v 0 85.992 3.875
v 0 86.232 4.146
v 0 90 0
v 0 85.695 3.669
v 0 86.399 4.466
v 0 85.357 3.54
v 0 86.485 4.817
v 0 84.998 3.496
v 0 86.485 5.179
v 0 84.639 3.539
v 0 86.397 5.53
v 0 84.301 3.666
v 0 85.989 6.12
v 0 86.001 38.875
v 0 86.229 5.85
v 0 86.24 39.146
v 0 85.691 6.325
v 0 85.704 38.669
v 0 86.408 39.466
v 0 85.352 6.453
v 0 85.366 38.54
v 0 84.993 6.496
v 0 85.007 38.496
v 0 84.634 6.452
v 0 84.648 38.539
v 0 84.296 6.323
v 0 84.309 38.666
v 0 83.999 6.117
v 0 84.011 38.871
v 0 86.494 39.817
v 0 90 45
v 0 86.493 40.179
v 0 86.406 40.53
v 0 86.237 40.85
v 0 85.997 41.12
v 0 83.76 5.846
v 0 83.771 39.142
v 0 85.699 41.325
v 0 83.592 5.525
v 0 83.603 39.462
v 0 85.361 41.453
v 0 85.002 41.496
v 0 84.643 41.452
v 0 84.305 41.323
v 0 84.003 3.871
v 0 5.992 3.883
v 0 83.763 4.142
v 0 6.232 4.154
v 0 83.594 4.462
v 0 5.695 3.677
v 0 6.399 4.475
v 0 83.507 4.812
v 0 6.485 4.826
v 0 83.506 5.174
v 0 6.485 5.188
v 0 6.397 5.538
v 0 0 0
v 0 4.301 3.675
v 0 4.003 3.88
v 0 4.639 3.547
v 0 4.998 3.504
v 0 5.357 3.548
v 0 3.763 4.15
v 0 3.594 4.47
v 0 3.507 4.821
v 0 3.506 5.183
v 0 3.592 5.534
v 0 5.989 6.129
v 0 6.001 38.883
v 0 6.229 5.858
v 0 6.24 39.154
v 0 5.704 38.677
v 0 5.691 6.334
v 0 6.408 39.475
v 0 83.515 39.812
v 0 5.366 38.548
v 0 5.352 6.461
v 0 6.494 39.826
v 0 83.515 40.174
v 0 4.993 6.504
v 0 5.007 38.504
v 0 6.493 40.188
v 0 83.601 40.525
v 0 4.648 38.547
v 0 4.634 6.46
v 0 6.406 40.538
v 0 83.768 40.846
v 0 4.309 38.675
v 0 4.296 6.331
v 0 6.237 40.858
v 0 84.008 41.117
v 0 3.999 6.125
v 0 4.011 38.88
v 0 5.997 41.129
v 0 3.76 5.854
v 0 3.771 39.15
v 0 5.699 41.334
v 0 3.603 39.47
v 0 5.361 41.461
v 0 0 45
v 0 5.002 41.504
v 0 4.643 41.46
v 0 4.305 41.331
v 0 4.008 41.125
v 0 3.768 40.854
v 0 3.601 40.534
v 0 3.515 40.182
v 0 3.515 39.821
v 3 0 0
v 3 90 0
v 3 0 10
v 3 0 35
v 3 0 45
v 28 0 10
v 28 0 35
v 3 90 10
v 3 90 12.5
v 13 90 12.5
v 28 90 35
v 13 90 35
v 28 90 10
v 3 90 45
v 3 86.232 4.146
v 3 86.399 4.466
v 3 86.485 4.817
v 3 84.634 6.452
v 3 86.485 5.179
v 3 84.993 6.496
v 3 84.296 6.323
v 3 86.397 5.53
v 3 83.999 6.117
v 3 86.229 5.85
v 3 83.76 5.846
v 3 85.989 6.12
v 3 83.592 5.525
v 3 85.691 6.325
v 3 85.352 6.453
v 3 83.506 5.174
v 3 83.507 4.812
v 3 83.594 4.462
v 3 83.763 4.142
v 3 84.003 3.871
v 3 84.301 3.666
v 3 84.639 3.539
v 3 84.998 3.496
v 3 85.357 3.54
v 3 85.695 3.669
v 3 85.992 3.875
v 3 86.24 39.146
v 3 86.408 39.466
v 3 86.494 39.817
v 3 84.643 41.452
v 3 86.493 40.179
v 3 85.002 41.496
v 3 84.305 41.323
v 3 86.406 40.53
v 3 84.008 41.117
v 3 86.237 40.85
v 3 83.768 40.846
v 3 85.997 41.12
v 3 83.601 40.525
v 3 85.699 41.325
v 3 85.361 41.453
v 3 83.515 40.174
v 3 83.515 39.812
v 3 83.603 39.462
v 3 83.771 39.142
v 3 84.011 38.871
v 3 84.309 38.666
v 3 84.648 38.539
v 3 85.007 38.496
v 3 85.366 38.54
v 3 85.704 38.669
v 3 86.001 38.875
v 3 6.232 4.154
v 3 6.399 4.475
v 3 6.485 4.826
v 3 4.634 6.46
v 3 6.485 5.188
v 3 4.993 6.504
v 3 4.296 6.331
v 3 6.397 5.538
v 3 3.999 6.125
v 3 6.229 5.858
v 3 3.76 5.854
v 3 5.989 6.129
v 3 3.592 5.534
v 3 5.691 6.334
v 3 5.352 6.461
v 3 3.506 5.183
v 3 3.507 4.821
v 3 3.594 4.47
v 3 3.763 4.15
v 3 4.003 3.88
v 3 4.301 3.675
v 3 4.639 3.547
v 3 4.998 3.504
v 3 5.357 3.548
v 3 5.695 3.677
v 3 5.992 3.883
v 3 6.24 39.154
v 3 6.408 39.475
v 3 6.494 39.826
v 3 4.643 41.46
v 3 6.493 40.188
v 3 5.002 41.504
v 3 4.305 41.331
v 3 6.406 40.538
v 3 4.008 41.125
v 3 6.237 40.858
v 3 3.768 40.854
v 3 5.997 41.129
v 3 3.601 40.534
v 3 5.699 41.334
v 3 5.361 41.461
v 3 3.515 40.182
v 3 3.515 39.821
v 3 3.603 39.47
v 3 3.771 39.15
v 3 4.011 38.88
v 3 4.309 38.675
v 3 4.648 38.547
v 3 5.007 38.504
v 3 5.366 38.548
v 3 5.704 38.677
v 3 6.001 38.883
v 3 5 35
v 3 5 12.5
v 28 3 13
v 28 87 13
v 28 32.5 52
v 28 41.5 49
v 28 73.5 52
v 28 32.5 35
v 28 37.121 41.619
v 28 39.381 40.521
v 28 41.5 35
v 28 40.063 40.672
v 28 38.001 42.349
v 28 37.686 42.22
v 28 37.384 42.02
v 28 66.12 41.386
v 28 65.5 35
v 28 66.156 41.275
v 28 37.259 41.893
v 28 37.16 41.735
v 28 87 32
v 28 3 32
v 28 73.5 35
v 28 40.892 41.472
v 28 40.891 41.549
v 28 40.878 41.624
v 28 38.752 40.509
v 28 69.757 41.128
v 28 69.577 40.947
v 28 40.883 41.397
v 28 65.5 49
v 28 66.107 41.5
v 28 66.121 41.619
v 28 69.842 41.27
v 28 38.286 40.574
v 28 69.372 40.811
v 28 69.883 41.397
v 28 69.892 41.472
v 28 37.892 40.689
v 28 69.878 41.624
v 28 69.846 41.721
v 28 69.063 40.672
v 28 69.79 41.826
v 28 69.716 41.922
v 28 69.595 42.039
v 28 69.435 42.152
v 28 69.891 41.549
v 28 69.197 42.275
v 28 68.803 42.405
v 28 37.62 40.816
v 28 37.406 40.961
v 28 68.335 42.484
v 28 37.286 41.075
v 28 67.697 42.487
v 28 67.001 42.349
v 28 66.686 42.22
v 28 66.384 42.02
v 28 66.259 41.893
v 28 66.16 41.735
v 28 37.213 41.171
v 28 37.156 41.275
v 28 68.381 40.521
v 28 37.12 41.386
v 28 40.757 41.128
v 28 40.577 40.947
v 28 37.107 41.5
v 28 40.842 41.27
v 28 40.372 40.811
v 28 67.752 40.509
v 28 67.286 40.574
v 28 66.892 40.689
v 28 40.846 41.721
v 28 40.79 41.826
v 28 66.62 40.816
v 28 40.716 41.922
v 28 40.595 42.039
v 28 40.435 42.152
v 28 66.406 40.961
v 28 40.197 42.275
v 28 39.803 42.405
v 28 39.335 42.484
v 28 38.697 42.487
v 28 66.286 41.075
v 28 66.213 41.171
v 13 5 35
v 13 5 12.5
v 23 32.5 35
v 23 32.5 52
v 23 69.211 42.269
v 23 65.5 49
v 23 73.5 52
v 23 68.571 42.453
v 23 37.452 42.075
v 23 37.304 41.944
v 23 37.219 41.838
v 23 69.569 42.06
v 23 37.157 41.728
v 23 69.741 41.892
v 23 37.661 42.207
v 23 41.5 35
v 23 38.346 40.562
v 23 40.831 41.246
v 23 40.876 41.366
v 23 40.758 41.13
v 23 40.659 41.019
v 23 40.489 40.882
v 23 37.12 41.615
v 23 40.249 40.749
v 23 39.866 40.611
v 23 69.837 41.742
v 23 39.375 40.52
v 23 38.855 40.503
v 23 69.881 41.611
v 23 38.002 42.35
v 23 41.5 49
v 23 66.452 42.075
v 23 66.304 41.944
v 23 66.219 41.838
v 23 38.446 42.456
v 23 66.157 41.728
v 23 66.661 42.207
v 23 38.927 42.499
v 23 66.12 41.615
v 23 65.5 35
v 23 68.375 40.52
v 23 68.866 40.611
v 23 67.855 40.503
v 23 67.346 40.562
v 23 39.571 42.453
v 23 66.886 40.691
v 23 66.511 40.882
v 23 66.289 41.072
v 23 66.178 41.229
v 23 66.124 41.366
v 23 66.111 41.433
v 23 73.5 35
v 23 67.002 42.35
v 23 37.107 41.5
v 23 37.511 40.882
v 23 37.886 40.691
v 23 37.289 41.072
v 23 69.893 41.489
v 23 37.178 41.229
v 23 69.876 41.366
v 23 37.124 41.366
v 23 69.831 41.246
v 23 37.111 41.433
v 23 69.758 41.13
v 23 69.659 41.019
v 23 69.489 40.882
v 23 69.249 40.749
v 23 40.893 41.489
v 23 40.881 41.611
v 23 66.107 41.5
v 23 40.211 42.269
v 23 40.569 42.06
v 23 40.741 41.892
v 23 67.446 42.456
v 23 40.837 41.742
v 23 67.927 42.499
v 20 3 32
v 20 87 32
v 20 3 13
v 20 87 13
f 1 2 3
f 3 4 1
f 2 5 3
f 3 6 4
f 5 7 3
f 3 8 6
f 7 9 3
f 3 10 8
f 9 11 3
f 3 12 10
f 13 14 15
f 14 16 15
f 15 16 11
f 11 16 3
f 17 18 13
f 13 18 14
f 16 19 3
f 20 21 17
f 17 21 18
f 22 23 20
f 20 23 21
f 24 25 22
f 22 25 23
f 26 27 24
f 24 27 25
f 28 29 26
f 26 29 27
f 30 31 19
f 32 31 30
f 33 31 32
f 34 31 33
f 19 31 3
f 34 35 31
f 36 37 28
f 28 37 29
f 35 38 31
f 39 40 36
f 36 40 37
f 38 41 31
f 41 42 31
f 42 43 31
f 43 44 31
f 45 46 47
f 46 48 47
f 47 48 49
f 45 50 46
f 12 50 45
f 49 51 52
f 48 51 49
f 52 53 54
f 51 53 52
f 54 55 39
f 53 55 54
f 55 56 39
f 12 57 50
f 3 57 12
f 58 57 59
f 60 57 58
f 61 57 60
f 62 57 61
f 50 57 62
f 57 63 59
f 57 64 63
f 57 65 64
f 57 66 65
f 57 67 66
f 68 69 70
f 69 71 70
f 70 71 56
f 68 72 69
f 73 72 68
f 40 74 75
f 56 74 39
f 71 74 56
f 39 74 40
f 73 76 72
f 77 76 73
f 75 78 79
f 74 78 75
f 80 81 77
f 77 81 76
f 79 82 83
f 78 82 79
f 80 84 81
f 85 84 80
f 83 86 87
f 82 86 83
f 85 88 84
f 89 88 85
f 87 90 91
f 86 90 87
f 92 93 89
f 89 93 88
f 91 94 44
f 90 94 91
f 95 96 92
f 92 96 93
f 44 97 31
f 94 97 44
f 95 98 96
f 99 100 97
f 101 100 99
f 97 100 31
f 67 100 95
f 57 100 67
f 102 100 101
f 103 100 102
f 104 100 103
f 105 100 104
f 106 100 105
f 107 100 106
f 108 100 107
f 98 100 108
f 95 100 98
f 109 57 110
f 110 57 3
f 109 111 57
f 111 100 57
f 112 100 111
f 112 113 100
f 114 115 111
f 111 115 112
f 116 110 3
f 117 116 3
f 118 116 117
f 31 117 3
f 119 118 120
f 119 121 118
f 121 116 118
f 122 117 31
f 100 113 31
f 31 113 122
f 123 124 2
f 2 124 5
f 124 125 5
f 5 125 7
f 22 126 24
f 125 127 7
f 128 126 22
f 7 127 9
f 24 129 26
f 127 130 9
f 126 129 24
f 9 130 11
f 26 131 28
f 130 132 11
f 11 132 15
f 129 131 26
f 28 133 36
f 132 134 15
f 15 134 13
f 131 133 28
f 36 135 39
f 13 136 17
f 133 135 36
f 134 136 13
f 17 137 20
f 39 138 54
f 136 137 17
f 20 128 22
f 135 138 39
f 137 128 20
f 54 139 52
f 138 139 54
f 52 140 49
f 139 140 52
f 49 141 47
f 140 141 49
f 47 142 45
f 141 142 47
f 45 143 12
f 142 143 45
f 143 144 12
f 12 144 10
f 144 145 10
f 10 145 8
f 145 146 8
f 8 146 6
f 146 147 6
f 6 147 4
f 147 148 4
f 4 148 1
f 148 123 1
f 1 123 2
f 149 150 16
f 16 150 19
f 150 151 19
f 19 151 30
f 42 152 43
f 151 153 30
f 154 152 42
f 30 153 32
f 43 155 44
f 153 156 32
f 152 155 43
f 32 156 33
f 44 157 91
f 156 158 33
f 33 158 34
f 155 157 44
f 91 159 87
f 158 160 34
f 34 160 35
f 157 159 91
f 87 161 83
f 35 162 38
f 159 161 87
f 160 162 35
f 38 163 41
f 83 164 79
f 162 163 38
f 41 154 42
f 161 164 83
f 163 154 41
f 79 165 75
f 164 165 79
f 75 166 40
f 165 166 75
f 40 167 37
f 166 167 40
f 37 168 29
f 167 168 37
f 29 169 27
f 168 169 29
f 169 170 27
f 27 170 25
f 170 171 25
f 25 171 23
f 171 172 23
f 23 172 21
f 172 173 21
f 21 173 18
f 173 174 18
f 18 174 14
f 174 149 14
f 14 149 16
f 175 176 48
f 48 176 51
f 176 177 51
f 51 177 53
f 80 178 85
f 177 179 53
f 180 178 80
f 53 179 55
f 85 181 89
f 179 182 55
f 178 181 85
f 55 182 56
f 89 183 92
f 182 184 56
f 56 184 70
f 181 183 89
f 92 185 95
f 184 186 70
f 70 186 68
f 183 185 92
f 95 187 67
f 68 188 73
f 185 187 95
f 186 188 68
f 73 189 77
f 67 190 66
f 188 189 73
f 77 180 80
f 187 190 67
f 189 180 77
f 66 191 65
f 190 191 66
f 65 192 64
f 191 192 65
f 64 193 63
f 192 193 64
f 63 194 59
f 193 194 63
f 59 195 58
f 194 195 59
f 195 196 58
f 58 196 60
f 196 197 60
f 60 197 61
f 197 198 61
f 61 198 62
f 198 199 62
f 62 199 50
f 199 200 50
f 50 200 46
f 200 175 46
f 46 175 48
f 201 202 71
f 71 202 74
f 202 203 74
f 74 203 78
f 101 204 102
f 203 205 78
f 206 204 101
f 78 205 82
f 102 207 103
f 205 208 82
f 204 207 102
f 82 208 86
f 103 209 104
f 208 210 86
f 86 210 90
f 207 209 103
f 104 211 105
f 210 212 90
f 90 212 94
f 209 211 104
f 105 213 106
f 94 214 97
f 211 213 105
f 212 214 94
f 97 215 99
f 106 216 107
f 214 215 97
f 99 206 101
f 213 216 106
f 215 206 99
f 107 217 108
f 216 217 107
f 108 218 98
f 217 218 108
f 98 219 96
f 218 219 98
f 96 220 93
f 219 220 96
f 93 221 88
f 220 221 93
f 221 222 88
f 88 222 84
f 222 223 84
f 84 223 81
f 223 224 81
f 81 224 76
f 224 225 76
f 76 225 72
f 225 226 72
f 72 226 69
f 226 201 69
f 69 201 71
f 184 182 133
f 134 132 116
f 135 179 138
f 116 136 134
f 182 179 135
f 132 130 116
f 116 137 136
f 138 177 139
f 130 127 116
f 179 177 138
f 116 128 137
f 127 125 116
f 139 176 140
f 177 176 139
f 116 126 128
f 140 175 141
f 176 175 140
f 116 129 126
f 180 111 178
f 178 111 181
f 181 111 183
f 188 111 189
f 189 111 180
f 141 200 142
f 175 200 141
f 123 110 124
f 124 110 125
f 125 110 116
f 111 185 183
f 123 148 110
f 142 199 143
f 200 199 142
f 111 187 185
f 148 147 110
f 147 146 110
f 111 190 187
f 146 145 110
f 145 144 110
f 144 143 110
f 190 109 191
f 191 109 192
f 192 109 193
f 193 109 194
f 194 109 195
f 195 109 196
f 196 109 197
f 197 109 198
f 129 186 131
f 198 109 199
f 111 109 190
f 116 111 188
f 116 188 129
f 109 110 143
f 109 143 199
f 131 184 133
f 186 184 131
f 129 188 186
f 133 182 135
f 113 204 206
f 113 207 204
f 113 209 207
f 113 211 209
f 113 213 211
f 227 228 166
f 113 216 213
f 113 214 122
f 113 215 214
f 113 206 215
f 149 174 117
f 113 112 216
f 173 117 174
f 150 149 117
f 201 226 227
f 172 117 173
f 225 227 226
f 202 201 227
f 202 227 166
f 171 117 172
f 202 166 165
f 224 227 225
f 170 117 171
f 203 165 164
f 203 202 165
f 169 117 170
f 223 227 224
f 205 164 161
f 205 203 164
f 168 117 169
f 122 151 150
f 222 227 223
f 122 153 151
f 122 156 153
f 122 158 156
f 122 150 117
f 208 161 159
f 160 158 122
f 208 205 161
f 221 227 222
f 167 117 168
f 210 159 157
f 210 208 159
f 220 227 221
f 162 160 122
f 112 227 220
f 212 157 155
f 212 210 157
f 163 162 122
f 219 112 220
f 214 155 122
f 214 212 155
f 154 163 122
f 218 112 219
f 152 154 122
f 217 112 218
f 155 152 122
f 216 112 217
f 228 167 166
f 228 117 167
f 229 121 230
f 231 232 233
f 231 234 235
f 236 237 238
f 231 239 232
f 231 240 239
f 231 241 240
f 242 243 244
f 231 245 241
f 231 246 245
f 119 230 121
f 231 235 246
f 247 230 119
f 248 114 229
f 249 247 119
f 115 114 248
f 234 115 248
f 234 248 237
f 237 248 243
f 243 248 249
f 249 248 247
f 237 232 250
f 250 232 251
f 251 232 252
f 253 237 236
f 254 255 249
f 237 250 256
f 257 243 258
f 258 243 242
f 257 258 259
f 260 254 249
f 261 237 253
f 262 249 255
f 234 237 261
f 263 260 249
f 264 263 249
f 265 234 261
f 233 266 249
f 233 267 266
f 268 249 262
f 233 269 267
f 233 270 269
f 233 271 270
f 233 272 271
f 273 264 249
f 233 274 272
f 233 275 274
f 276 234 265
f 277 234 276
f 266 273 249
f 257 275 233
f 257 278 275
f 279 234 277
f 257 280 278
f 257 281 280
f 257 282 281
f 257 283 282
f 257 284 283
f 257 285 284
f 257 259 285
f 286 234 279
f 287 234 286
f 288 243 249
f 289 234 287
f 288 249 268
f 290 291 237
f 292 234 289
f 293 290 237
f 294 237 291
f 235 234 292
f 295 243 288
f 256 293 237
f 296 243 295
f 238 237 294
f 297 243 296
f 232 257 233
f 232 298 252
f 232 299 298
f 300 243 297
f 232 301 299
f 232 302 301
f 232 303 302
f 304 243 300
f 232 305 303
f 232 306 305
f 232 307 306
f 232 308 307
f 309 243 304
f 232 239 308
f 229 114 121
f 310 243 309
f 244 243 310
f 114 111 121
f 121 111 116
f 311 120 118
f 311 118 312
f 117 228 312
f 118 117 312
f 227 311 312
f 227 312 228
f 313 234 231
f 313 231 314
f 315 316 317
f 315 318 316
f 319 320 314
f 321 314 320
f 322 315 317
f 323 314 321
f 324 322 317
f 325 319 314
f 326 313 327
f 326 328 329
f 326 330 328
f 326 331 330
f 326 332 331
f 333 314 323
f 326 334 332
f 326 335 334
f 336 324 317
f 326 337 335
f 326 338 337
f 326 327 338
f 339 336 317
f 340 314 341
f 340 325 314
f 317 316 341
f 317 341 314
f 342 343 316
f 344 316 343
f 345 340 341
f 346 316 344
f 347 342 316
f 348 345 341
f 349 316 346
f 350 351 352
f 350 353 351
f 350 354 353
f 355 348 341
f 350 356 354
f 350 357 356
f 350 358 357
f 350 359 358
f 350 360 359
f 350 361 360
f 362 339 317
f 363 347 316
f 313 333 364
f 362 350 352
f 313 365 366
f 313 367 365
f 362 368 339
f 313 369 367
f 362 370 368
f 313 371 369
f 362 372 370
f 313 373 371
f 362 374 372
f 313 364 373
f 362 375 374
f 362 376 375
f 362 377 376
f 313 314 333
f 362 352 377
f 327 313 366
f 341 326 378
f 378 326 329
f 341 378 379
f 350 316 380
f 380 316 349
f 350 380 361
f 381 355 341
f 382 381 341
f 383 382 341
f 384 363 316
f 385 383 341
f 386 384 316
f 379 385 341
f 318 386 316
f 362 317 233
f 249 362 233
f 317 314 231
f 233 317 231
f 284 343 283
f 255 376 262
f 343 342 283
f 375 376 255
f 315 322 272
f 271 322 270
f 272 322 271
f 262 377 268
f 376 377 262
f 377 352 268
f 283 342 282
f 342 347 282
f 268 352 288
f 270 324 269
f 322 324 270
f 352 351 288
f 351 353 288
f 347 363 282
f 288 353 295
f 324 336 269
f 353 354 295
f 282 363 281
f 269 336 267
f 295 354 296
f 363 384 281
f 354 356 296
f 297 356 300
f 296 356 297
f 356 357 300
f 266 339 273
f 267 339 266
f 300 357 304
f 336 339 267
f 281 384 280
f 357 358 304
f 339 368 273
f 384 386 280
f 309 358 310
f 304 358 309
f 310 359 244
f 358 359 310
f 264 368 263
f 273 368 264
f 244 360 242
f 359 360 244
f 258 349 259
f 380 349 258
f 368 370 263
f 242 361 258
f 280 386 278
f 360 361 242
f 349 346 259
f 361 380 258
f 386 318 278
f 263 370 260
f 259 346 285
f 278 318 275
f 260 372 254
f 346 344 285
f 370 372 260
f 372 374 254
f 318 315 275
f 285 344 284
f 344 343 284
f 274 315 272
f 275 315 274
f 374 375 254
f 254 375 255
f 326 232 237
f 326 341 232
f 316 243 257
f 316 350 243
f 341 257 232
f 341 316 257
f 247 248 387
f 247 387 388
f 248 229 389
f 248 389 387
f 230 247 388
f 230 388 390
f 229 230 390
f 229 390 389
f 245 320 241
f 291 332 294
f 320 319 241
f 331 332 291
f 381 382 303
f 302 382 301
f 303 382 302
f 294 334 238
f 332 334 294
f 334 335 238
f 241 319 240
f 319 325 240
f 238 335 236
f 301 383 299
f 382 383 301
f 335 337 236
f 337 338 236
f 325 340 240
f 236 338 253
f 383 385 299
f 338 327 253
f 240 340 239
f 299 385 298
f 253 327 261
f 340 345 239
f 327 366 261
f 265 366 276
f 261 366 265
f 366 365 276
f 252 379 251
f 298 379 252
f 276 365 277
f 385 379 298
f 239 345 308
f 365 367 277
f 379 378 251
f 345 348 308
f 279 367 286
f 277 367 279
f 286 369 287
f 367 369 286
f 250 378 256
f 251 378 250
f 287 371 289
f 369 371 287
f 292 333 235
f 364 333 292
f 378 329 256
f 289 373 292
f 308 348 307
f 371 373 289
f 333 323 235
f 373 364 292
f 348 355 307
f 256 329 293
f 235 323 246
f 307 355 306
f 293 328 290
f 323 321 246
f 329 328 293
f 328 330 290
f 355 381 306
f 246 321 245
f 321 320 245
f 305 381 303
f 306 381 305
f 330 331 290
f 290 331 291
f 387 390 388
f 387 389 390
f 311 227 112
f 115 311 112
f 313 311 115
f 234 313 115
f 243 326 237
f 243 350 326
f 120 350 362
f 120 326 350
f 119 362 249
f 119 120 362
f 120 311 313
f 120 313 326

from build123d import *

# Parameters (mm, degrees)
SKETCH005_W                               = 24
SKETCH005_H                               = 14
EXTRUDE006_DEPTH                          = 10
EXTRUDE007_DEPTH                          = 10
EXTRUDE005_DEPTH                          = 10
SKETCH004_W                               = 5
SKETCH004_H                               = 41
EXTRUDE004_DEPTH                          = 17
SKETCH003_AS_DRAWN_R                      = 1.5
EXTRUDE003_DEPTH                          = 5
EXTRUDE003_ONTO_SKETCH003_ROLL_ANGLE      = -90
EXTRUDE003_ONTO_SKETCH003_PITCH_ANGLE     = -89.903691
EXTRUDE003_ONTO_SKETCH003_PLACEMENT_ANGLE = -90
SKETCH002_W                               = 84
SKETCH002_H                               = 19
EXTRUDE002_DEPTH                          = 8
SKETCH001_W                               = 10
SKETCH001_H                               = 85
EXTRUDE001_DEPTH                          = 22.5
EXTRUDE_DEPTH                             = 90


with BuildPart() as extrude006:
    # Sketch005 (on Face18 of Fusion) → Extrude006 (new body)
    with BuildSketch(Plane(origin=(23, 0, 0), x_dir=(0, -1, 0), z_dir=(-1, 0, 0))):
        with Locations((-53.5, 42)):
            Rectangle(SKETCH005_W, SKETCH005_H)
        with BuildLine():
            add(Edge.make_bspline(
                [(-66.107143, 41.5), (-66.107143, 43.232051), (-68.946429, 42.366025), (-71.785714, 41.5), (-68.946429, 40.633975), (-66.107143, 39.767949), (-66.107143, 41.5)],
                knots=[0, 0, 0, 2.094395, 2.094395, 4.18879, 4.18879, 6.283185, 6.283185, 6.283185], degree=2, weights=[1, 0.5, 1, 0.5, 1, 0.5, 1]))
        make_face()
        with BuildLine():
            add(Edge.make_bspline(
                [(-37.107143, 41.5), (-37.107143, 43.232051), (-39.946429, 42.366025), (-42.785714, 41.5), (-39.946429, 40.633975), (-37.107143, 39.767949), (-37.107143, 41.5)],
                knots=[0, 0, 0, 2.094395, 2.094395, 4.18879, 4.18879, 6.283185, 6.283185, 6.283185], degree=2, weights=[1, 0.5, 1, 0.5, 1, 0.5, 1]))
        make_face()
    extrude(amount=-EXTRUDE006_DEPTH)


with BuildPart() as extrude007:
    # Sketch005 (on Face18 of Fusion) → Extrude007 (new body)
    with BuildSketch(Plane(origin=(23, 0, 0), x_dir=(0, -1, 0), z_dir=(-1, 0, 0))):
        with Locations((-53.5, 42)):
            Rectangle(SKETCH005_W, SKETCH005_H)
        with BuildLine():
            add(Edge.make_bspline(
                [(-66.107143, 41.5), (-66.107143, 43.232051), (-68.946429, 42.366025), (-71.785714, 41.5), (-68.946429, 40.633975), (-66.107143, 39.767949), (-66.107143, 41.5)],
                knots=[0, 0, 0, 2.094395, 2.094395, 4.18879, 4.18879, 6.283185, 6.283185, 6.283185], degree=2, weights=[1, 0.5, 1, 0.5, 1, 0.5, 1]))
        make_face()
        with BuildLine():
            add(Edge.make_bspline(
                [(-37.107143, 41.5), (-37.107143, 43.232051), (-39.946429, 42.366025), (-42.785714, 41.5), (-39.946429, 40.633975), (-37.107143, 39.767949), (-37.107143, 41.5)],
                knots=[0, 0, 0, 2.094395, 2.094395, 4.18879, 4.18879, 6.283185, 6.283185, 6.283185], degree=2, weights=[1, 0.5, 1, 0.5, 1, 0.5, 1]))
        make_face()
    extrude(amount=-EXTRUDE007_DEPTH)


with BuildPart() as motor_cavity:
    # Sketch005 (on Face18 of Fusion) → Extrude005 (new body)
    with BuildSketch(Plane(origin=(23, 0, 0), x_dir=(0, -1, 0), z_dir=(-1, 0, 0))):
        with Locations((-53.5, 42)):
            Rectangle(SKETCH005_W, SKETCH005_H)
        with BuildLine():
            add(Edge.make_bspline(
                [(-66.107143, 41.5), (-66.107143, 43.232051), (-68.946429, 42.366025), (-71.785714, 41.5), (-68.946429, 40.633975), (-66.107143, 39.767949), (-66.107143, 41.5)],
                knots=[0, 0, 0, 2.094395, 2.094395, 4.18879, 4.18879, 6.283185, 6.283185, 6.283185], degree=2, weights=[1, 0.5, 1, 0.5, 1, 0.5, 1]))
        make_face()
        with BuildLine():
            add(Edge.make_bspline(
                [(-37.107143, 41.5), (-37.107143, 43.232051), (-39.946429, 42.366025), (-42.785714, 41.5), (-39.946429, 40.633975), (-37.107143, 39.767949), (-37.107143, 41.5)],
                knots=[0, 0, 0, 2.094395, 2.094395, 4.18879, 4.18879, 6.283185, 6.283185, 6.283185], degree=2, weights=[1, 0.5, 1, 0.5, 1, 0.5, 1]))
        make_face()
    extrude(amount=-EXTRUDE005_DEPTH)

    # Fusion001: union Extrude006, Extrude007
    add(extrude006.part)
    add(extrude007.part)


with BuildPart() as motor_holder:
    # Sketch004 (on Face12 of Cut002) → Extrude004 (new body)
    with BuildSketch(Plane.XY.offset(35)):
        with Locations((25.5, 53)):
            Rectangle(SKETCH004_W, SKETCH004_H)
    extrude(amount=EXTRUDE004_DEPTH)


with BuildPart() as screw_holes:
    # Sketch003 as drawn → Extrude003 (new)
    with BuildSketch(Plane.XY):
        with Locations((16.786752, -38.744592)):
            Circle(SKETCH003_AS_DRAWN_R)
        with Locations((-18.213177, -38.677355)):
            Circle(SKETCH003_AS_DRAWN_R)
        with Locations((16.92963, 41.255274)):
            Circle(SKETCH003_AS_DRAWN_R)
        with Locations((-18.0703, 41.32251)):
            Circle(SKETCH003_AS_DRAWN_R)
    extrude(amount=-EXTRUDE003_DEPTH)


with BuildPart() as screw_holes_1:
    # Extrude003 onto Sketch003 roll: moved
    add(screw_holes.part.rotate(Axis((0, 0, 0), (1, 0, 0)), EXTRUDE003_ONTO_SKETCH003_ROLL_ANGLE))


with BuildPart() as screw_holes_2:
    # Extrude003 onto Sketch003 pitch: moved
    add(screw_holes_1.part.rotate(Axis((0, 0, 0), (0, 1, 0)), EXTRUDE003_ONTO_SKETCH003_PITCH_ANGLE))


with BuildPart() as screw_holes_3:
    # Extrude003 onto Sketch003 placement: moved
    add(screw_holes_2.part.moved(Location((3, 46.287879, 23.143939))).rotate(Axis((3, 46.287879, 23.143939), (0, 0, 1)), EXTRUDE003_ONTO_SKETCH003_PLACEMENT_ANGLE))


with BuildPart() as cavity:
    # Sketch002 (on Face8 of Cut) → Extrude002 (new body)
    with BuildSketch(Plane.YZ.offset(28)):
        with Locations((45, 22.5)):
            Rectangle(SKETCH002_W, SKETCH002_H)
    extrude(amount=-EXTRUDE002_DEPTH)


with BuildPart() as lock_hole:
    # Sketch001 (on Face4 of Extrude) → Extrude001 (new body)
    with BuildSketch(Plane.XY.offset(35)):
        with Locations((8, 47.5)):
            Rectangle(SKETCH001_W, SKETCH001_H)
    extrude(amount=-EXTRUDE001_DEPTH)


with BuildPart() as cut003:
    # Sketch → Extrude (new body)
    with BuildSketch(Plane.XZ):
        Polygon((0, 0), (0, 45), (3, 45), (3, 35), (28, 35), (28, 10), (3, 10), (3, 0), align=None)
    extrude(amount=-EXTRUDE_DEPTH)

    # Cut: cut lock hole
    add(lock_hole.part, mode=Mode.SUBTRACT)

    # Cut001: cut cavity
    add(cavity.part, mode=Mode.SUBTRACT)

    # Cut002: cut screw holes
    add(screw_holes_3.part, mode=Mode.SUBTRACT)

    # Fusion: union motor holder
    add(motor_holder.part)

    # Cut003: cut motor cavity
    add(motor_cavity.part, mode=Mode.SUBTRACT)


solid = cut003.part
